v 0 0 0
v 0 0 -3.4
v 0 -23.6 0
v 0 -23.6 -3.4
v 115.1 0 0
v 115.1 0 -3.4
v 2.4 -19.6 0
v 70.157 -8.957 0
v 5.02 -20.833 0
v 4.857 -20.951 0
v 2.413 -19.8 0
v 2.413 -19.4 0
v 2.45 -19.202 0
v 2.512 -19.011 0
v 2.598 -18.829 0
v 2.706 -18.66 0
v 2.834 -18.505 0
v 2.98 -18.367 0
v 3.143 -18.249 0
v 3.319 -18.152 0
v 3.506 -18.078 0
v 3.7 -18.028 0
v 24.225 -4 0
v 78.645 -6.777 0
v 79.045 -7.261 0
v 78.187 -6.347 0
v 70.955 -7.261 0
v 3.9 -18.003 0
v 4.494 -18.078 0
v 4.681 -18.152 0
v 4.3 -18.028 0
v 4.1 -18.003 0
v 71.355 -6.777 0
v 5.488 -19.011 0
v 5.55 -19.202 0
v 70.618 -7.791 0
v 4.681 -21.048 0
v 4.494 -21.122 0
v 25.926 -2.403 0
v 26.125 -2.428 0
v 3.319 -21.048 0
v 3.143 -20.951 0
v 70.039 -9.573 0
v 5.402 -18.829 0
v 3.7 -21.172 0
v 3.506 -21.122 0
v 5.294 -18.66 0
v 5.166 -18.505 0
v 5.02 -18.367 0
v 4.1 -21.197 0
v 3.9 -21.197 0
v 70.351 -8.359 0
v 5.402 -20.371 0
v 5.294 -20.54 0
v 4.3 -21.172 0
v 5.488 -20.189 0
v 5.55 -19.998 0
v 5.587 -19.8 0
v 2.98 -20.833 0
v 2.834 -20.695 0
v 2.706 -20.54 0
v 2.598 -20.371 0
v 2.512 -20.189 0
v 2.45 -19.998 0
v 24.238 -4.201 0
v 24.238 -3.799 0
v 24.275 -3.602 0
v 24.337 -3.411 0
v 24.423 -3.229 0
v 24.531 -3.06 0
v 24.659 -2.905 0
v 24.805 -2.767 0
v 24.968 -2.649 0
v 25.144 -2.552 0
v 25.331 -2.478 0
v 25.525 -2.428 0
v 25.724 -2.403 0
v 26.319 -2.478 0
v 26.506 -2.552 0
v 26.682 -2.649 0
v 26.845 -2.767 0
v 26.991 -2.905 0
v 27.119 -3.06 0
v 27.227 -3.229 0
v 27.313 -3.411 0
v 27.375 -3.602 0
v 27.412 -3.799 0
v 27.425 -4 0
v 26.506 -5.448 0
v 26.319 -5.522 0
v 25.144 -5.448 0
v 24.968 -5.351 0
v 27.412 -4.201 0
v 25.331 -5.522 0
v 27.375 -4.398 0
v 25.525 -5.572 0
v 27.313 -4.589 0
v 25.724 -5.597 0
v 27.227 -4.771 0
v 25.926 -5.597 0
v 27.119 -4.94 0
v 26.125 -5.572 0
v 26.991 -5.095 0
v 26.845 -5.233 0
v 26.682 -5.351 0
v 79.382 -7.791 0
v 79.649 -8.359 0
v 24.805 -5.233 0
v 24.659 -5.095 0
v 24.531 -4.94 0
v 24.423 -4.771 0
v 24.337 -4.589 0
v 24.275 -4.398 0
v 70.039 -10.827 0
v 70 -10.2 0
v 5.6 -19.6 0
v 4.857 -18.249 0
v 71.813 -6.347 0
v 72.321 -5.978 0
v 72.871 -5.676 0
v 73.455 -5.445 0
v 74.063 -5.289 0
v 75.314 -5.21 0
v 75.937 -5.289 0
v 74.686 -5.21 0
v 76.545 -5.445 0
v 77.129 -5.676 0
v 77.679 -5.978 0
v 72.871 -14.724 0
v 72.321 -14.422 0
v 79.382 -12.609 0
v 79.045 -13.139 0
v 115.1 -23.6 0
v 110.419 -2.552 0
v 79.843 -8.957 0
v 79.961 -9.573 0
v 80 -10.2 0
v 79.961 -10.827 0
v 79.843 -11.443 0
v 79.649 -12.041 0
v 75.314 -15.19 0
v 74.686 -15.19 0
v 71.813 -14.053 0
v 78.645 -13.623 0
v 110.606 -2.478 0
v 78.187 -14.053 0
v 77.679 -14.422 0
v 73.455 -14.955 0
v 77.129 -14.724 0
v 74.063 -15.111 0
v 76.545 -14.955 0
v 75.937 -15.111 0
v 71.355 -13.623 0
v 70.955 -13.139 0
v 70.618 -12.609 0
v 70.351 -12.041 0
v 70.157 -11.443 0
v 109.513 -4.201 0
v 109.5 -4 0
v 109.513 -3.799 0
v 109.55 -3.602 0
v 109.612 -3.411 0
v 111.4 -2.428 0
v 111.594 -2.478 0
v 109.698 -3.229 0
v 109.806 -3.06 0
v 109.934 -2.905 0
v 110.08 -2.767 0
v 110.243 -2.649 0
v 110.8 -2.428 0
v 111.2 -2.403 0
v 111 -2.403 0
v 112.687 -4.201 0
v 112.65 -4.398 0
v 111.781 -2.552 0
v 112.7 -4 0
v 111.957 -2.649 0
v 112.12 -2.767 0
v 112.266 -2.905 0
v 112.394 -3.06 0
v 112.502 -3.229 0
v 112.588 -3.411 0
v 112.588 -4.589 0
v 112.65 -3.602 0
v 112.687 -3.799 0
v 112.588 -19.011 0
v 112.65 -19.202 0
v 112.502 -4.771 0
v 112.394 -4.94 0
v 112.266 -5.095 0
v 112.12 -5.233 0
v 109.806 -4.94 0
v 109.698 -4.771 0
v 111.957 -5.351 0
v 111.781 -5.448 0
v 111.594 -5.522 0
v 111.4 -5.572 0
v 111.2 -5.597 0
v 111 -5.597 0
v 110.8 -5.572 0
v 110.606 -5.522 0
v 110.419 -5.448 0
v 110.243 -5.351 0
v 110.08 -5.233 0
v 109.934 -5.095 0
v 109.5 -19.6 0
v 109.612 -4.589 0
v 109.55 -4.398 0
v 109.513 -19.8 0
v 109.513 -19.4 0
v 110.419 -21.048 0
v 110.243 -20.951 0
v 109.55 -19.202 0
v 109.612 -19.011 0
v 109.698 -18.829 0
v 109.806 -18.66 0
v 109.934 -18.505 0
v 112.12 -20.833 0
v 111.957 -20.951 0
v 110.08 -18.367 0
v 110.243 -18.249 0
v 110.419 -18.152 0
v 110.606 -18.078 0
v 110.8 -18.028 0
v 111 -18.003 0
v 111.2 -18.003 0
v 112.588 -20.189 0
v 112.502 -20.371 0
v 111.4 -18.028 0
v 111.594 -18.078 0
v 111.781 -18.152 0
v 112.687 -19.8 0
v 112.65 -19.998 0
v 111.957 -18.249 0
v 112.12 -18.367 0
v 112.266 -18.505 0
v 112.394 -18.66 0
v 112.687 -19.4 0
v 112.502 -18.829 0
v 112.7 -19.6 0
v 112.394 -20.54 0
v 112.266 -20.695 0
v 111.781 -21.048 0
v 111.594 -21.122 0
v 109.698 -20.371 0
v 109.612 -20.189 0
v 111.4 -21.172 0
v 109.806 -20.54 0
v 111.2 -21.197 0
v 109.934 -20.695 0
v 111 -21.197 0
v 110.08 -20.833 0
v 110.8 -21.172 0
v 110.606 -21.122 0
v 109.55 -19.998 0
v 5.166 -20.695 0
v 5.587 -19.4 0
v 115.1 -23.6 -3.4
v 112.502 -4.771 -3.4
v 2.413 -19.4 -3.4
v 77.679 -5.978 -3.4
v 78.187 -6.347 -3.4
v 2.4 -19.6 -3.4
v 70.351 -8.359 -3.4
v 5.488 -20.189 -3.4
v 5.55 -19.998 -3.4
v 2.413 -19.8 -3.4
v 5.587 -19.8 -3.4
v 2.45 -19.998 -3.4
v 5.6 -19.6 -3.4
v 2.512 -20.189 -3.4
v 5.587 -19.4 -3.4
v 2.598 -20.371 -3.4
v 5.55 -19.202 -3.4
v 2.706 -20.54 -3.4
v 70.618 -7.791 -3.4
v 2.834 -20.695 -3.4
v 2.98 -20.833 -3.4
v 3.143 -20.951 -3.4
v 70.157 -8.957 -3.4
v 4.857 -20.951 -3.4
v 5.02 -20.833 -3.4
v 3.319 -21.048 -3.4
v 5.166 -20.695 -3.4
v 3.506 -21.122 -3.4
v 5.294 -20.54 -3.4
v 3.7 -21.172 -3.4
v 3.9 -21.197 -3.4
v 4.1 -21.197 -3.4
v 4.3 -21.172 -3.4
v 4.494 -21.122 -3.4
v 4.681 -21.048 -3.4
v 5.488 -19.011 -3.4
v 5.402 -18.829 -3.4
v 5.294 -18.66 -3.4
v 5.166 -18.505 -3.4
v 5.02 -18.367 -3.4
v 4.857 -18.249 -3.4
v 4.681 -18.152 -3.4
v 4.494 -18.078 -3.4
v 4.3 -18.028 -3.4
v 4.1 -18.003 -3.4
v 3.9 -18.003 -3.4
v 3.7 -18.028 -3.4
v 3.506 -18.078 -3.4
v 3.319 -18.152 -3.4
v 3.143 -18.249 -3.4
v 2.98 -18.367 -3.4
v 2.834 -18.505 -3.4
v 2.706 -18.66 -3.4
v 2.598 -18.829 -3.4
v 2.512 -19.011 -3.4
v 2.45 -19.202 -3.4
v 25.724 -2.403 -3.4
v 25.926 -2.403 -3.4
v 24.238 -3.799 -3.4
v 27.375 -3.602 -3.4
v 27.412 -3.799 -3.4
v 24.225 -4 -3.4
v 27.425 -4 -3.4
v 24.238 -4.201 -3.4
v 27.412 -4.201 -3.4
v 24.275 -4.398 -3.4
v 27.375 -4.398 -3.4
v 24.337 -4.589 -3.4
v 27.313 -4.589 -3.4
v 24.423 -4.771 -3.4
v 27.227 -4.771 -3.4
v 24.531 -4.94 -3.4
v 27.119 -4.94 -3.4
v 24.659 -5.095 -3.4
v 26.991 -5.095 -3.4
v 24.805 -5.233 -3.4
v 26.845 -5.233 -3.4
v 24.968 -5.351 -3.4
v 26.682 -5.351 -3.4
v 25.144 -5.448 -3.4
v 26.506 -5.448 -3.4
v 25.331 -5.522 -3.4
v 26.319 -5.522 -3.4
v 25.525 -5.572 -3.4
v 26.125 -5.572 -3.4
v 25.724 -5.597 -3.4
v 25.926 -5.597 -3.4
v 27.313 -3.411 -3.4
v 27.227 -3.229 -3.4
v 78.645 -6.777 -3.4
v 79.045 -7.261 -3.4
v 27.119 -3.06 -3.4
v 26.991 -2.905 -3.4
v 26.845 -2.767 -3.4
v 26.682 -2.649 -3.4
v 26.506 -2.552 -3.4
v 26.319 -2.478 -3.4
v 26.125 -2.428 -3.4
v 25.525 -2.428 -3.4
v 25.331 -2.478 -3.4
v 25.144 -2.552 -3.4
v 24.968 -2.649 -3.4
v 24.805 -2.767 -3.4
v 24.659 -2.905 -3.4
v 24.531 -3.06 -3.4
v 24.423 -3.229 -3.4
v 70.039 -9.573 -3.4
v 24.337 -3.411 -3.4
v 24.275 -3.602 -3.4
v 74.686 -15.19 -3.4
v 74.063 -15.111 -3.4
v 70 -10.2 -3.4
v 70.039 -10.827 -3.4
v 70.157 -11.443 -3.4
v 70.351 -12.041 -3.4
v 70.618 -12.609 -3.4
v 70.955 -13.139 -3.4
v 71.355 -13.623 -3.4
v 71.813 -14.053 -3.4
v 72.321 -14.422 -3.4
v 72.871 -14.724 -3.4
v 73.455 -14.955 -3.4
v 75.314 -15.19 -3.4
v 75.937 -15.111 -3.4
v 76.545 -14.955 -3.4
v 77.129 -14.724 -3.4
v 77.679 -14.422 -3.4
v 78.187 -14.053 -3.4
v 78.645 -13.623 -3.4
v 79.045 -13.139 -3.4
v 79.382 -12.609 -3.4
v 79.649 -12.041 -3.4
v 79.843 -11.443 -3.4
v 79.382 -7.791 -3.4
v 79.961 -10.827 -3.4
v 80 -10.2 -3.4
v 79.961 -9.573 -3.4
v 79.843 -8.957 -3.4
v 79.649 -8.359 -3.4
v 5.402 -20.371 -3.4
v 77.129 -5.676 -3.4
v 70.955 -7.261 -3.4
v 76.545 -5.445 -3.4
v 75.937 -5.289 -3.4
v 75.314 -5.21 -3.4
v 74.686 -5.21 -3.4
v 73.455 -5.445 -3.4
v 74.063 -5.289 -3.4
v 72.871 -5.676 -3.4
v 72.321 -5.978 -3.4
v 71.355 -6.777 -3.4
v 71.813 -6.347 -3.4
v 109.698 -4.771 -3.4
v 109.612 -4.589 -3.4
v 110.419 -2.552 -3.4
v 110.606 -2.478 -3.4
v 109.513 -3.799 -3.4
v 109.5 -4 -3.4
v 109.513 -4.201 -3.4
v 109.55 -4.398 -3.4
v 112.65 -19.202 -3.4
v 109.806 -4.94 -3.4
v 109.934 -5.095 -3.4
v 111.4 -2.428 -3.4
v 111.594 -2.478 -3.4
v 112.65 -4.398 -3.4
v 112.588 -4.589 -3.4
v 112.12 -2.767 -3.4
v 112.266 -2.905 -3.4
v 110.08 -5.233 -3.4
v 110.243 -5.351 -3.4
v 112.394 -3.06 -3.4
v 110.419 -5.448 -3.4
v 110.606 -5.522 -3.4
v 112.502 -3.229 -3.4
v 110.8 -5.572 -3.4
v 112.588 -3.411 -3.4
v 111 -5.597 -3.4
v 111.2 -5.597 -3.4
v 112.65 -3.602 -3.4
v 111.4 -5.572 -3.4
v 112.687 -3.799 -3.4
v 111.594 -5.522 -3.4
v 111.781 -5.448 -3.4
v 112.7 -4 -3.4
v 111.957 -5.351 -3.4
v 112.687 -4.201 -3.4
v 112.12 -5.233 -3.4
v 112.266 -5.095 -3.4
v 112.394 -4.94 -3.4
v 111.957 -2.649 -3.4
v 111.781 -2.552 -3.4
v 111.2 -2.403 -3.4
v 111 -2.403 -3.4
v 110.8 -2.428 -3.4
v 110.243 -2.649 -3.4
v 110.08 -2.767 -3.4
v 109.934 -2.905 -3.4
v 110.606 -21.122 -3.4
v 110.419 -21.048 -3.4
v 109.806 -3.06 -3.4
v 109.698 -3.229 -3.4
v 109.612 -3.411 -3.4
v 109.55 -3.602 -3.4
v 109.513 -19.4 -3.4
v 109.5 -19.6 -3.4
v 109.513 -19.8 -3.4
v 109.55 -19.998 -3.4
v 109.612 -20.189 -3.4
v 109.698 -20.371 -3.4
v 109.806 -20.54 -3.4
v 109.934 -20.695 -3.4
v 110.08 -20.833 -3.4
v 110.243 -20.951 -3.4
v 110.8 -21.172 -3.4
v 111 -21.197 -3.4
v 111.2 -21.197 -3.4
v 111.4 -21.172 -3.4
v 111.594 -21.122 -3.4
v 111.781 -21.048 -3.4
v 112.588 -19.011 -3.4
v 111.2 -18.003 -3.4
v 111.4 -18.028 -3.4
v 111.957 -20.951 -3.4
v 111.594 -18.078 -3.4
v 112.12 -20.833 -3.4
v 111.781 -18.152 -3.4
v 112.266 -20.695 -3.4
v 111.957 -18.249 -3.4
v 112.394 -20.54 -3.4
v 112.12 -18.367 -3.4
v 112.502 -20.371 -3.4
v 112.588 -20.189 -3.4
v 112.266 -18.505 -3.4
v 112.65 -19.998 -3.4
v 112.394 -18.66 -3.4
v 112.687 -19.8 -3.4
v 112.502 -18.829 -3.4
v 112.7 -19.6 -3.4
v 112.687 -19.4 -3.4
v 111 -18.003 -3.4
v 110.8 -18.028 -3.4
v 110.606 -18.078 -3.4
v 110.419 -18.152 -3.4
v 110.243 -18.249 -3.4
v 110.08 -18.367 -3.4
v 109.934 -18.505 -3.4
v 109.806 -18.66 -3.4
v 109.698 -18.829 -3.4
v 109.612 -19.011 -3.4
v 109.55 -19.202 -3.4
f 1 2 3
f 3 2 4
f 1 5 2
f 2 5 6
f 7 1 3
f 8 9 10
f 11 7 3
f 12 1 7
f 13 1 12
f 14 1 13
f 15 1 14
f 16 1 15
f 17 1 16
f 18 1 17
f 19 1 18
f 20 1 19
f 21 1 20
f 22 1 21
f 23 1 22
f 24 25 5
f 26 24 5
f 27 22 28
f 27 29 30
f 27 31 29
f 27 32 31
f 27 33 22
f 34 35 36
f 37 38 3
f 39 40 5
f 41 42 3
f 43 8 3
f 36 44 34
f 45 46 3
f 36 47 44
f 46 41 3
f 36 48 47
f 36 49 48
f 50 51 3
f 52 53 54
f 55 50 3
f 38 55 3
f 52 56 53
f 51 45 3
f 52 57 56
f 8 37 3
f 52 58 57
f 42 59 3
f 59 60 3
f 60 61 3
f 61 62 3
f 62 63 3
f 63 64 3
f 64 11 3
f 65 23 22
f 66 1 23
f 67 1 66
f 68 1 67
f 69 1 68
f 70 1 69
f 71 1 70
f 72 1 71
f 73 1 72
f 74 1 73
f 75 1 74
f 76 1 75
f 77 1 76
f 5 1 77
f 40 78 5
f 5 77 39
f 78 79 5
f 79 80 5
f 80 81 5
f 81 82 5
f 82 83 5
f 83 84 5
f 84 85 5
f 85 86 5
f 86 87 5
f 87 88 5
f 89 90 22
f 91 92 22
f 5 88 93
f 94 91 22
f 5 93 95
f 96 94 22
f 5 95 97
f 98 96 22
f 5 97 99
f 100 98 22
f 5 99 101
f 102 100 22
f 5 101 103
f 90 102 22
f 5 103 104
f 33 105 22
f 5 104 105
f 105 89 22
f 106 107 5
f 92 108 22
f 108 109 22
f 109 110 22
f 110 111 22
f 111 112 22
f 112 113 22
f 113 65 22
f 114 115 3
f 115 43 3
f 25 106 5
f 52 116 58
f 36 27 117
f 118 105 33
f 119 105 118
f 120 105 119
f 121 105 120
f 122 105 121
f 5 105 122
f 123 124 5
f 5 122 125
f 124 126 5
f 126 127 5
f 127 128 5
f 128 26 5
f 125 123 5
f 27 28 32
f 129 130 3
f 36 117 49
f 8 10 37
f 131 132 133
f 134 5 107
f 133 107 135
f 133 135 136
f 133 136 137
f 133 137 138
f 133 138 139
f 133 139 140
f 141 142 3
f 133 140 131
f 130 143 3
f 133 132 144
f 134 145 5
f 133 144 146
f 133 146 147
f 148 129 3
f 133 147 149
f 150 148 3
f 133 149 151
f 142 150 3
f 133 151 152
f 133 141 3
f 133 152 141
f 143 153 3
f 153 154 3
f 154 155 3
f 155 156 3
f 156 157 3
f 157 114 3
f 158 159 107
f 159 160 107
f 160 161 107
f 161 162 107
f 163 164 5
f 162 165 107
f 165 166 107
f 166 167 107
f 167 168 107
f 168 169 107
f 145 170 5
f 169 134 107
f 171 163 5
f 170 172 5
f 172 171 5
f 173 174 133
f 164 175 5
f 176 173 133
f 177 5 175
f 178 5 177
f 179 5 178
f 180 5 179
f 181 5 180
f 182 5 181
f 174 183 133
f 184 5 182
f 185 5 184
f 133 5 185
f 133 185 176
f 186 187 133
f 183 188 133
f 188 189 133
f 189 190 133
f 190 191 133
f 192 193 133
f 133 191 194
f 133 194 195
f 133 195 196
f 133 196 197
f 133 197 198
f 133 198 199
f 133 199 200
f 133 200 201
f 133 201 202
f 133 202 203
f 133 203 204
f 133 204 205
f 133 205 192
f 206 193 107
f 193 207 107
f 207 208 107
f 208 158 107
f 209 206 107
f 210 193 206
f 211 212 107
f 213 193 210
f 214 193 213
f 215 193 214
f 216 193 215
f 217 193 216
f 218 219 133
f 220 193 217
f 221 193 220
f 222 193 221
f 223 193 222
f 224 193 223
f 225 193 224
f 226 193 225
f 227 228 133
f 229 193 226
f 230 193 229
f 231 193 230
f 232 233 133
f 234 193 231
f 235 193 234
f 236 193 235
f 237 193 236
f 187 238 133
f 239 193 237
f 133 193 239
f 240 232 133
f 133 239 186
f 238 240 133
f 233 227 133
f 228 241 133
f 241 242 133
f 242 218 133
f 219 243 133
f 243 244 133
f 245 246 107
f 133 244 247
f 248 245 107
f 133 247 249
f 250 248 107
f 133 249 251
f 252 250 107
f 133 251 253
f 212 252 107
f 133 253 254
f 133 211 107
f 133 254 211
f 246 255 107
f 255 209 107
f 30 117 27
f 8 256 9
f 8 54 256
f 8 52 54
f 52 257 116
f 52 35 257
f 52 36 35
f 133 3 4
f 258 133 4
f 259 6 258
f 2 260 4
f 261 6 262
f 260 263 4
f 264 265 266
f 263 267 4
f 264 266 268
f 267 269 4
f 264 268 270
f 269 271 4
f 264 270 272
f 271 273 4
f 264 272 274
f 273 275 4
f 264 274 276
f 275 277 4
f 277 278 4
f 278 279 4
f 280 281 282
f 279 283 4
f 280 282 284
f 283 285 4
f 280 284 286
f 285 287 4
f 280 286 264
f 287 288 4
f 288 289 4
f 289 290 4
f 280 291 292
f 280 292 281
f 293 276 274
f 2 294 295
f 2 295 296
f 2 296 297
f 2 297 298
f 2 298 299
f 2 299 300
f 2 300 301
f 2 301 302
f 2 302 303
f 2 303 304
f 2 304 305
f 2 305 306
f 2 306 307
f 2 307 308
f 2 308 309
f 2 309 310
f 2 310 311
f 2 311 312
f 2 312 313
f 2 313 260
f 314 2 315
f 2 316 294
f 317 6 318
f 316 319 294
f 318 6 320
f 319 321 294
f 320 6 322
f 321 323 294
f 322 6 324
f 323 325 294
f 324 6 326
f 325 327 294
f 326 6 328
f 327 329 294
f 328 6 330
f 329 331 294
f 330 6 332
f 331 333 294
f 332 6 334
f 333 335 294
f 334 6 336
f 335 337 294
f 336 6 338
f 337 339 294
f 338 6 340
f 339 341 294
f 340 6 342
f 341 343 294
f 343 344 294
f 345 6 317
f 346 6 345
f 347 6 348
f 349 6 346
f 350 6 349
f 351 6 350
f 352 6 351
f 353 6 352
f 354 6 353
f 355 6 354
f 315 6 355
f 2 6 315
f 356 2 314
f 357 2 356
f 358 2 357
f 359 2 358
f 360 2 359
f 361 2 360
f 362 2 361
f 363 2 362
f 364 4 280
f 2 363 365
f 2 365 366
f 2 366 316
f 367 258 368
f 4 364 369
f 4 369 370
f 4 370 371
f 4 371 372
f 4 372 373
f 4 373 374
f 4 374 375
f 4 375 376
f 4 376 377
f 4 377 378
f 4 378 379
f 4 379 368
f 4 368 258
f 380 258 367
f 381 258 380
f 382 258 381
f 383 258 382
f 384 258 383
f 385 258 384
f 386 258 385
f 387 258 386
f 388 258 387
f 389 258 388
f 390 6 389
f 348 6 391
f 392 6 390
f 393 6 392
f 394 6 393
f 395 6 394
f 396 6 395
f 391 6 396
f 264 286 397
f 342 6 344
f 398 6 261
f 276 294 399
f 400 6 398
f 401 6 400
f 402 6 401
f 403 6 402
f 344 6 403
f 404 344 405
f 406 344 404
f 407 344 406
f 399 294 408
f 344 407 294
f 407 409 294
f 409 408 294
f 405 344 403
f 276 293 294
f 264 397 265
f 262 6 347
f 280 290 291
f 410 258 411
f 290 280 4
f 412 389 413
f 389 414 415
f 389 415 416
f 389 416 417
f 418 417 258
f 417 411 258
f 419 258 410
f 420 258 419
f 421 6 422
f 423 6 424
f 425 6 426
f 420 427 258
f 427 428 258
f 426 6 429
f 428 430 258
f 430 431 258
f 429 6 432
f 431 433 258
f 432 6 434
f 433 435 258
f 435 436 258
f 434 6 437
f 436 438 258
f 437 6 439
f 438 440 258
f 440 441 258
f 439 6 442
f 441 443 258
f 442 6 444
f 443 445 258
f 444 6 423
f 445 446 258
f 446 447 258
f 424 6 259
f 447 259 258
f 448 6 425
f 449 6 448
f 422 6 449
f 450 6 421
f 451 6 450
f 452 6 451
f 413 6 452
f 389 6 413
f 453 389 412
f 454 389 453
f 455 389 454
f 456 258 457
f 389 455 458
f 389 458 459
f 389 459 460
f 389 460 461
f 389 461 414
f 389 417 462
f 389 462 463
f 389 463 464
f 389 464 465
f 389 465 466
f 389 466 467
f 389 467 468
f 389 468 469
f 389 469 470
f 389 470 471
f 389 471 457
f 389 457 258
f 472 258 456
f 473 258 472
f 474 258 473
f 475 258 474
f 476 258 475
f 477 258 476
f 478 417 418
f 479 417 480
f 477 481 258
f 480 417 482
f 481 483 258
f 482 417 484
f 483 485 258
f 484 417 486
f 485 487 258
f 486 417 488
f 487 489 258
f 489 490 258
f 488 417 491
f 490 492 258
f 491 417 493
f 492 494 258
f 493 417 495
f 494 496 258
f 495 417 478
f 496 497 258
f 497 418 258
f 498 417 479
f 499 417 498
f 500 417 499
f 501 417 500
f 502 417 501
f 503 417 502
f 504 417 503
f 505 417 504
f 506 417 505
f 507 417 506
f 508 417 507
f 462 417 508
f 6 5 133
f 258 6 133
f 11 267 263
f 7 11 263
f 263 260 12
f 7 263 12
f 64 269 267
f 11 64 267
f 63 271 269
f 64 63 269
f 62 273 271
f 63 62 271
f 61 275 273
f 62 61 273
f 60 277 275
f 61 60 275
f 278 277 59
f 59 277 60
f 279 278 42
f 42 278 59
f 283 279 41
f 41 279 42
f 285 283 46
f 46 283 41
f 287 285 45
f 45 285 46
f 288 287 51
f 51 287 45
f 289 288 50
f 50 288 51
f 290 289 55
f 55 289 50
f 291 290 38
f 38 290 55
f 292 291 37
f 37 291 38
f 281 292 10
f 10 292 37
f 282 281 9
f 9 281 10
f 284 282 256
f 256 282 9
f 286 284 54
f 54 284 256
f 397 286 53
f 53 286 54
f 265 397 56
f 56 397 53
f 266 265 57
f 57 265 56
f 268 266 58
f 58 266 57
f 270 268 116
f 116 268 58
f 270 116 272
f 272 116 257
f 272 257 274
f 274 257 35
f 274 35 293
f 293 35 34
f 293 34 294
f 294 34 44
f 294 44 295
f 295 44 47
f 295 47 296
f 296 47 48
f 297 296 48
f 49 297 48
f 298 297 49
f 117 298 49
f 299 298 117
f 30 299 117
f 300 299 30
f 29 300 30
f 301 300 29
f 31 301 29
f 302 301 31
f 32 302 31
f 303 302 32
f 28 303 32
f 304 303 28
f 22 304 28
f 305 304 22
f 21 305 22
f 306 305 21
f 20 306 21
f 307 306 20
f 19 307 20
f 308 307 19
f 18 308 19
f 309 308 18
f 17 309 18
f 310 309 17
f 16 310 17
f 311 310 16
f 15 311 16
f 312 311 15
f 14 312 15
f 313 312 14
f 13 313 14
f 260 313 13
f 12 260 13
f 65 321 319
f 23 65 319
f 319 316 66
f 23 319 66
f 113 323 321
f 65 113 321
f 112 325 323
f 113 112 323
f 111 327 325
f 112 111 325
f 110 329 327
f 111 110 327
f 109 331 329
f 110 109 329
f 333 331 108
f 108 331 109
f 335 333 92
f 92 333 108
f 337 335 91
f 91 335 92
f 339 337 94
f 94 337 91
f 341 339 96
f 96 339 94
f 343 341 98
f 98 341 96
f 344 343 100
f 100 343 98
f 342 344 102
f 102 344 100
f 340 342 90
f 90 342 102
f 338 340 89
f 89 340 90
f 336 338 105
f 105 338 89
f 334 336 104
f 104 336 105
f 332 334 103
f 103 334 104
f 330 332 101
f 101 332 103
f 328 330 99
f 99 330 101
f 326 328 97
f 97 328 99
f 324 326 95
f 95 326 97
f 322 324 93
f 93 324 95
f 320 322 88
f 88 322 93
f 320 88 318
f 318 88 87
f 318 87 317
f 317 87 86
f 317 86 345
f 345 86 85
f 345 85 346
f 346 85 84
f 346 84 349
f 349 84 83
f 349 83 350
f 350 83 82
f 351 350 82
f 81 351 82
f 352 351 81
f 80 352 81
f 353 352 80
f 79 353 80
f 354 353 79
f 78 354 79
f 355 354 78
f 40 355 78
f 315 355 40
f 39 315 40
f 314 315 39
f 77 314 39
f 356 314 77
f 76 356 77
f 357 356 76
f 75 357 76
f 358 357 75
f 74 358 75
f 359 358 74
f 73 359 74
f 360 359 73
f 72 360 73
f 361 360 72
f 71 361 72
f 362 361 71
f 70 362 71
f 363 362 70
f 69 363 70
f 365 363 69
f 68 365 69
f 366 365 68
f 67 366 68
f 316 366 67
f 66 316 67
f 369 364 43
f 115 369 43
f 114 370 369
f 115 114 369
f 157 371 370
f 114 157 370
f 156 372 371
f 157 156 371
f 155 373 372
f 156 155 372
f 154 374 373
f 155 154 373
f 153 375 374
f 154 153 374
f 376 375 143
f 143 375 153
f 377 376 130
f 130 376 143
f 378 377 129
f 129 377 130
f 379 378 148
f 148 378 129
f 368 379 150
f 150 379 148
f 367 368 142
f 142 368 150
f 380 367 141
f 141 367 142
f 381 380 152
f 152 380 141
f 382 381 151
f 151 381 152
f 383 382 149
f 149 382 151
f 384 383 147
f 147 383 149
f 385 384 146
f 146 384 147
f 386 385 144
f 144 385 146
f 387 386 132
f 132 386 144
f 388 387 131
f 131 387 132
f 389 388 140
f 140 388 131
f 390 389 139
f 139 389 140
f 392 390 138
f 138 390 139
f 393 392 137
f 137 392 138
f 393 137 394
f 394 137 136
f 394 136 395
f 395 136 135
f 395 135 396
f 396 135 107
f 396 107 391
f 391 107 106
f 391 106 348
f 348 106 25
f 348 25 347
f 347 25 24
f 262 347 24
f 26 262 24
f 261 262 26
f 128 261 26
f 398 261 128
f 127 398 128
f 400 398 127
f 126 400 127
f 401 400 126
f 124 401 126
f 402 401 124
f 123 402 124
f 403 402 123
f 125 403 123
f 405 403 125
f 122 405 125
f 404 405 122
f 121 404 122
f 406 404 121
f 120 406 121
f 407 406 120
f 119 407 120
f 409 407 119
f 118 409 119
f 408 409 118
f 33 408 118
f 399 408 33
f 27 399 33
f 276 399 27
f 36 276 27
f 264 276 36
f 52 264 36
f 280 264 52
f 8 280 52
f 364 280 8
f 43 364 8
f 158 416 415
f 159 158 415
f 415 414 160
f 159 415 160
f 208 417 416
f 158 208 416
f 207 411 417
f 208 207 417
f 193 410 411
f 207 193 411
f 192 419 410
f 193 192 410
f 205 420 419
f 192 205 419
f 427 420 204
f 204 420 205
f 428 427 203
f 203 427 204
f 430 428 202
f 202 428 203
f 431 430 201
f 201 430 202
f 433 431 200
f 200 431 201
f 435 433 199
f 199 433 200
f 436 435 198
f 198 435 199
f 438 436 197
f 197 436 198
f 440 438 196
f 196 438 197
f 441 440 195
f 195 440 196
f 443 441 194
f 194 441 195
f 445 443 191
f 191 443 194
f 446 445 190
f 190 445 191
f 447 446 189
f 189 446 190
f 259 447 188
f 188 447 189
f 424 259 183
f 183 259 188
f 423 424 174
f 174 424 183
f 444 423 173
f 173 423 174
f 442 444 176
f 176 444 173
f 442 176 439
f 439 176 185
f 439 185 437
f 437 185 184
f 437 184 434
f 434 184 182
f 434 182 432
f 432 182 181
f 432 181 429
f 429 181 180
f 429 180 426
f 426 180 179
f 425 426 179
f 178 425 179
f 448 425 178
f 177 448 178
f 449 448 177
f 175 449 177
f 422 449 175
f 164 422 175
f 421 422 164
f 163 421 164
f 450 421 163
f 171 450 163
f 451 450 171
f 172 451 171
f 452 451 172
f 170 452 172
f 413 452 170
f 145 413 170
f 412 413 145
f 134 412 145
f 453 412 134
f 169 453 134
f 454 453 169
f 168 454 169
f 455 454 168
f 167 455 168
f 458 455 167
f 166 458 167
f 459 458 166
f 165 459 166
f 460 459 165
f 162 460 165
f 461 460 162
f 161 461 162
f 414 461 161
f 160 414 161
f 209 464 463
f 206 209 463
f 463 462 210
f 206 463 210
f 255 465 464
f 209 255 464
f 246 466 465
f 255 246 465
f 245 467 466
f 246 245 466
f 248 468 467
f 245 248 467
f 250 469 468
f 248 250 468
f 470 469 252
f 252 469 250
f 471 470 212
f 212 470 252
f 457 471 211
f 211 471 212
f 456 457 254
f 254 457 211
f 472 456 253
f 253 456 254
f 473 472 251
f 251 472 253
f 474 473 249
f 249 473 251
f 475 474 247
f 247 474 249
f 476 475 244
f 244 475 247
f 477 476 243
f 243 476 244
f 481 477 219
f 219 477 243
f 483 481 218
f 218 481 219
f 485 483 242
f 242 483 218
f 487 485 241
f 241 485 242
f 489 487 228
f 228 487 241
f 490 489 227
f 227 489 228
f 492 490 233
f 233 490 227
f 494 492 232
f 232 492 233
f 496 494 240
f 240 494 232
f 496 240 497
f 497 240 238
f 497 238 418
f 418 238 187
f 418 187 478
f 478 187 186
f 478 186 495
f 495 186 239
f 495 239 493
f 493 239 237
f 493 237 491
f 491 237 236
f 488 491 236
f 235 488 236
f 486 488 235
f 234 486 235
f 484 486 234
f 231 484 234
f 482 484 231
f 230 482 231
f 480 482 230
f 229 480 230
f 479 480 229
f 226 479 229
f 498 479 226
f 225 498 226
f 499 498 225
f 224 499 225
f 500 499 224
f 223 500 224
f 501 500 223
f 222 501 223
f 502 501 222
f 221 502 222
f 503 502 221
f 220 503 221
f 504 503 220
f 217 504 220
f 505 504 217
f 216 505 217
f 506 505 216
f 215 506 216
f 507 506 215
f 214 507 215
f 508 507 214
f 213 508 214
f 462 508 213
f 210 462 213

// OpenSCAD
$fn = 50;

hia = 30;
bia = 17.5;
lia = 109;

sp = 2;

d = 0.7;

h = 2;
b = bia + d + 2*sp;
l = lia + d + 2*sp;


ba = 7;
la = 10;

a1 = 4 + sp;
a2 = a1 + 33;
a3 = a2 + 54;

ro = 5;
ho = h-d;

lo = 75;

bk = 5;

bo = ba+bk/2+d;

rs = 3.2/2;

rotate([180,0,0])
difference(){
	cube([l+2*d,b+2*d,h+2*d]);
	translate([lo,bo,-0.5*d]) cylinder(r = ro, h = h+3*d);
	translate([4,b+2*d-4,-0.5*d]) cylinder(r = rs, h = h+3*d);
	translate([l+2*d-4,b+2*d-4,-0.5*d]) cylinder(r = rs, h = h+3*d);
	translate([l+2*d-4,+4,-0.5*d]) cylinder(r = rs, h = h+3*d);
	translate([l/4+2*d-4,+4,-0.5*d]) cylinder(r = rs, h = h+3*d);

}
